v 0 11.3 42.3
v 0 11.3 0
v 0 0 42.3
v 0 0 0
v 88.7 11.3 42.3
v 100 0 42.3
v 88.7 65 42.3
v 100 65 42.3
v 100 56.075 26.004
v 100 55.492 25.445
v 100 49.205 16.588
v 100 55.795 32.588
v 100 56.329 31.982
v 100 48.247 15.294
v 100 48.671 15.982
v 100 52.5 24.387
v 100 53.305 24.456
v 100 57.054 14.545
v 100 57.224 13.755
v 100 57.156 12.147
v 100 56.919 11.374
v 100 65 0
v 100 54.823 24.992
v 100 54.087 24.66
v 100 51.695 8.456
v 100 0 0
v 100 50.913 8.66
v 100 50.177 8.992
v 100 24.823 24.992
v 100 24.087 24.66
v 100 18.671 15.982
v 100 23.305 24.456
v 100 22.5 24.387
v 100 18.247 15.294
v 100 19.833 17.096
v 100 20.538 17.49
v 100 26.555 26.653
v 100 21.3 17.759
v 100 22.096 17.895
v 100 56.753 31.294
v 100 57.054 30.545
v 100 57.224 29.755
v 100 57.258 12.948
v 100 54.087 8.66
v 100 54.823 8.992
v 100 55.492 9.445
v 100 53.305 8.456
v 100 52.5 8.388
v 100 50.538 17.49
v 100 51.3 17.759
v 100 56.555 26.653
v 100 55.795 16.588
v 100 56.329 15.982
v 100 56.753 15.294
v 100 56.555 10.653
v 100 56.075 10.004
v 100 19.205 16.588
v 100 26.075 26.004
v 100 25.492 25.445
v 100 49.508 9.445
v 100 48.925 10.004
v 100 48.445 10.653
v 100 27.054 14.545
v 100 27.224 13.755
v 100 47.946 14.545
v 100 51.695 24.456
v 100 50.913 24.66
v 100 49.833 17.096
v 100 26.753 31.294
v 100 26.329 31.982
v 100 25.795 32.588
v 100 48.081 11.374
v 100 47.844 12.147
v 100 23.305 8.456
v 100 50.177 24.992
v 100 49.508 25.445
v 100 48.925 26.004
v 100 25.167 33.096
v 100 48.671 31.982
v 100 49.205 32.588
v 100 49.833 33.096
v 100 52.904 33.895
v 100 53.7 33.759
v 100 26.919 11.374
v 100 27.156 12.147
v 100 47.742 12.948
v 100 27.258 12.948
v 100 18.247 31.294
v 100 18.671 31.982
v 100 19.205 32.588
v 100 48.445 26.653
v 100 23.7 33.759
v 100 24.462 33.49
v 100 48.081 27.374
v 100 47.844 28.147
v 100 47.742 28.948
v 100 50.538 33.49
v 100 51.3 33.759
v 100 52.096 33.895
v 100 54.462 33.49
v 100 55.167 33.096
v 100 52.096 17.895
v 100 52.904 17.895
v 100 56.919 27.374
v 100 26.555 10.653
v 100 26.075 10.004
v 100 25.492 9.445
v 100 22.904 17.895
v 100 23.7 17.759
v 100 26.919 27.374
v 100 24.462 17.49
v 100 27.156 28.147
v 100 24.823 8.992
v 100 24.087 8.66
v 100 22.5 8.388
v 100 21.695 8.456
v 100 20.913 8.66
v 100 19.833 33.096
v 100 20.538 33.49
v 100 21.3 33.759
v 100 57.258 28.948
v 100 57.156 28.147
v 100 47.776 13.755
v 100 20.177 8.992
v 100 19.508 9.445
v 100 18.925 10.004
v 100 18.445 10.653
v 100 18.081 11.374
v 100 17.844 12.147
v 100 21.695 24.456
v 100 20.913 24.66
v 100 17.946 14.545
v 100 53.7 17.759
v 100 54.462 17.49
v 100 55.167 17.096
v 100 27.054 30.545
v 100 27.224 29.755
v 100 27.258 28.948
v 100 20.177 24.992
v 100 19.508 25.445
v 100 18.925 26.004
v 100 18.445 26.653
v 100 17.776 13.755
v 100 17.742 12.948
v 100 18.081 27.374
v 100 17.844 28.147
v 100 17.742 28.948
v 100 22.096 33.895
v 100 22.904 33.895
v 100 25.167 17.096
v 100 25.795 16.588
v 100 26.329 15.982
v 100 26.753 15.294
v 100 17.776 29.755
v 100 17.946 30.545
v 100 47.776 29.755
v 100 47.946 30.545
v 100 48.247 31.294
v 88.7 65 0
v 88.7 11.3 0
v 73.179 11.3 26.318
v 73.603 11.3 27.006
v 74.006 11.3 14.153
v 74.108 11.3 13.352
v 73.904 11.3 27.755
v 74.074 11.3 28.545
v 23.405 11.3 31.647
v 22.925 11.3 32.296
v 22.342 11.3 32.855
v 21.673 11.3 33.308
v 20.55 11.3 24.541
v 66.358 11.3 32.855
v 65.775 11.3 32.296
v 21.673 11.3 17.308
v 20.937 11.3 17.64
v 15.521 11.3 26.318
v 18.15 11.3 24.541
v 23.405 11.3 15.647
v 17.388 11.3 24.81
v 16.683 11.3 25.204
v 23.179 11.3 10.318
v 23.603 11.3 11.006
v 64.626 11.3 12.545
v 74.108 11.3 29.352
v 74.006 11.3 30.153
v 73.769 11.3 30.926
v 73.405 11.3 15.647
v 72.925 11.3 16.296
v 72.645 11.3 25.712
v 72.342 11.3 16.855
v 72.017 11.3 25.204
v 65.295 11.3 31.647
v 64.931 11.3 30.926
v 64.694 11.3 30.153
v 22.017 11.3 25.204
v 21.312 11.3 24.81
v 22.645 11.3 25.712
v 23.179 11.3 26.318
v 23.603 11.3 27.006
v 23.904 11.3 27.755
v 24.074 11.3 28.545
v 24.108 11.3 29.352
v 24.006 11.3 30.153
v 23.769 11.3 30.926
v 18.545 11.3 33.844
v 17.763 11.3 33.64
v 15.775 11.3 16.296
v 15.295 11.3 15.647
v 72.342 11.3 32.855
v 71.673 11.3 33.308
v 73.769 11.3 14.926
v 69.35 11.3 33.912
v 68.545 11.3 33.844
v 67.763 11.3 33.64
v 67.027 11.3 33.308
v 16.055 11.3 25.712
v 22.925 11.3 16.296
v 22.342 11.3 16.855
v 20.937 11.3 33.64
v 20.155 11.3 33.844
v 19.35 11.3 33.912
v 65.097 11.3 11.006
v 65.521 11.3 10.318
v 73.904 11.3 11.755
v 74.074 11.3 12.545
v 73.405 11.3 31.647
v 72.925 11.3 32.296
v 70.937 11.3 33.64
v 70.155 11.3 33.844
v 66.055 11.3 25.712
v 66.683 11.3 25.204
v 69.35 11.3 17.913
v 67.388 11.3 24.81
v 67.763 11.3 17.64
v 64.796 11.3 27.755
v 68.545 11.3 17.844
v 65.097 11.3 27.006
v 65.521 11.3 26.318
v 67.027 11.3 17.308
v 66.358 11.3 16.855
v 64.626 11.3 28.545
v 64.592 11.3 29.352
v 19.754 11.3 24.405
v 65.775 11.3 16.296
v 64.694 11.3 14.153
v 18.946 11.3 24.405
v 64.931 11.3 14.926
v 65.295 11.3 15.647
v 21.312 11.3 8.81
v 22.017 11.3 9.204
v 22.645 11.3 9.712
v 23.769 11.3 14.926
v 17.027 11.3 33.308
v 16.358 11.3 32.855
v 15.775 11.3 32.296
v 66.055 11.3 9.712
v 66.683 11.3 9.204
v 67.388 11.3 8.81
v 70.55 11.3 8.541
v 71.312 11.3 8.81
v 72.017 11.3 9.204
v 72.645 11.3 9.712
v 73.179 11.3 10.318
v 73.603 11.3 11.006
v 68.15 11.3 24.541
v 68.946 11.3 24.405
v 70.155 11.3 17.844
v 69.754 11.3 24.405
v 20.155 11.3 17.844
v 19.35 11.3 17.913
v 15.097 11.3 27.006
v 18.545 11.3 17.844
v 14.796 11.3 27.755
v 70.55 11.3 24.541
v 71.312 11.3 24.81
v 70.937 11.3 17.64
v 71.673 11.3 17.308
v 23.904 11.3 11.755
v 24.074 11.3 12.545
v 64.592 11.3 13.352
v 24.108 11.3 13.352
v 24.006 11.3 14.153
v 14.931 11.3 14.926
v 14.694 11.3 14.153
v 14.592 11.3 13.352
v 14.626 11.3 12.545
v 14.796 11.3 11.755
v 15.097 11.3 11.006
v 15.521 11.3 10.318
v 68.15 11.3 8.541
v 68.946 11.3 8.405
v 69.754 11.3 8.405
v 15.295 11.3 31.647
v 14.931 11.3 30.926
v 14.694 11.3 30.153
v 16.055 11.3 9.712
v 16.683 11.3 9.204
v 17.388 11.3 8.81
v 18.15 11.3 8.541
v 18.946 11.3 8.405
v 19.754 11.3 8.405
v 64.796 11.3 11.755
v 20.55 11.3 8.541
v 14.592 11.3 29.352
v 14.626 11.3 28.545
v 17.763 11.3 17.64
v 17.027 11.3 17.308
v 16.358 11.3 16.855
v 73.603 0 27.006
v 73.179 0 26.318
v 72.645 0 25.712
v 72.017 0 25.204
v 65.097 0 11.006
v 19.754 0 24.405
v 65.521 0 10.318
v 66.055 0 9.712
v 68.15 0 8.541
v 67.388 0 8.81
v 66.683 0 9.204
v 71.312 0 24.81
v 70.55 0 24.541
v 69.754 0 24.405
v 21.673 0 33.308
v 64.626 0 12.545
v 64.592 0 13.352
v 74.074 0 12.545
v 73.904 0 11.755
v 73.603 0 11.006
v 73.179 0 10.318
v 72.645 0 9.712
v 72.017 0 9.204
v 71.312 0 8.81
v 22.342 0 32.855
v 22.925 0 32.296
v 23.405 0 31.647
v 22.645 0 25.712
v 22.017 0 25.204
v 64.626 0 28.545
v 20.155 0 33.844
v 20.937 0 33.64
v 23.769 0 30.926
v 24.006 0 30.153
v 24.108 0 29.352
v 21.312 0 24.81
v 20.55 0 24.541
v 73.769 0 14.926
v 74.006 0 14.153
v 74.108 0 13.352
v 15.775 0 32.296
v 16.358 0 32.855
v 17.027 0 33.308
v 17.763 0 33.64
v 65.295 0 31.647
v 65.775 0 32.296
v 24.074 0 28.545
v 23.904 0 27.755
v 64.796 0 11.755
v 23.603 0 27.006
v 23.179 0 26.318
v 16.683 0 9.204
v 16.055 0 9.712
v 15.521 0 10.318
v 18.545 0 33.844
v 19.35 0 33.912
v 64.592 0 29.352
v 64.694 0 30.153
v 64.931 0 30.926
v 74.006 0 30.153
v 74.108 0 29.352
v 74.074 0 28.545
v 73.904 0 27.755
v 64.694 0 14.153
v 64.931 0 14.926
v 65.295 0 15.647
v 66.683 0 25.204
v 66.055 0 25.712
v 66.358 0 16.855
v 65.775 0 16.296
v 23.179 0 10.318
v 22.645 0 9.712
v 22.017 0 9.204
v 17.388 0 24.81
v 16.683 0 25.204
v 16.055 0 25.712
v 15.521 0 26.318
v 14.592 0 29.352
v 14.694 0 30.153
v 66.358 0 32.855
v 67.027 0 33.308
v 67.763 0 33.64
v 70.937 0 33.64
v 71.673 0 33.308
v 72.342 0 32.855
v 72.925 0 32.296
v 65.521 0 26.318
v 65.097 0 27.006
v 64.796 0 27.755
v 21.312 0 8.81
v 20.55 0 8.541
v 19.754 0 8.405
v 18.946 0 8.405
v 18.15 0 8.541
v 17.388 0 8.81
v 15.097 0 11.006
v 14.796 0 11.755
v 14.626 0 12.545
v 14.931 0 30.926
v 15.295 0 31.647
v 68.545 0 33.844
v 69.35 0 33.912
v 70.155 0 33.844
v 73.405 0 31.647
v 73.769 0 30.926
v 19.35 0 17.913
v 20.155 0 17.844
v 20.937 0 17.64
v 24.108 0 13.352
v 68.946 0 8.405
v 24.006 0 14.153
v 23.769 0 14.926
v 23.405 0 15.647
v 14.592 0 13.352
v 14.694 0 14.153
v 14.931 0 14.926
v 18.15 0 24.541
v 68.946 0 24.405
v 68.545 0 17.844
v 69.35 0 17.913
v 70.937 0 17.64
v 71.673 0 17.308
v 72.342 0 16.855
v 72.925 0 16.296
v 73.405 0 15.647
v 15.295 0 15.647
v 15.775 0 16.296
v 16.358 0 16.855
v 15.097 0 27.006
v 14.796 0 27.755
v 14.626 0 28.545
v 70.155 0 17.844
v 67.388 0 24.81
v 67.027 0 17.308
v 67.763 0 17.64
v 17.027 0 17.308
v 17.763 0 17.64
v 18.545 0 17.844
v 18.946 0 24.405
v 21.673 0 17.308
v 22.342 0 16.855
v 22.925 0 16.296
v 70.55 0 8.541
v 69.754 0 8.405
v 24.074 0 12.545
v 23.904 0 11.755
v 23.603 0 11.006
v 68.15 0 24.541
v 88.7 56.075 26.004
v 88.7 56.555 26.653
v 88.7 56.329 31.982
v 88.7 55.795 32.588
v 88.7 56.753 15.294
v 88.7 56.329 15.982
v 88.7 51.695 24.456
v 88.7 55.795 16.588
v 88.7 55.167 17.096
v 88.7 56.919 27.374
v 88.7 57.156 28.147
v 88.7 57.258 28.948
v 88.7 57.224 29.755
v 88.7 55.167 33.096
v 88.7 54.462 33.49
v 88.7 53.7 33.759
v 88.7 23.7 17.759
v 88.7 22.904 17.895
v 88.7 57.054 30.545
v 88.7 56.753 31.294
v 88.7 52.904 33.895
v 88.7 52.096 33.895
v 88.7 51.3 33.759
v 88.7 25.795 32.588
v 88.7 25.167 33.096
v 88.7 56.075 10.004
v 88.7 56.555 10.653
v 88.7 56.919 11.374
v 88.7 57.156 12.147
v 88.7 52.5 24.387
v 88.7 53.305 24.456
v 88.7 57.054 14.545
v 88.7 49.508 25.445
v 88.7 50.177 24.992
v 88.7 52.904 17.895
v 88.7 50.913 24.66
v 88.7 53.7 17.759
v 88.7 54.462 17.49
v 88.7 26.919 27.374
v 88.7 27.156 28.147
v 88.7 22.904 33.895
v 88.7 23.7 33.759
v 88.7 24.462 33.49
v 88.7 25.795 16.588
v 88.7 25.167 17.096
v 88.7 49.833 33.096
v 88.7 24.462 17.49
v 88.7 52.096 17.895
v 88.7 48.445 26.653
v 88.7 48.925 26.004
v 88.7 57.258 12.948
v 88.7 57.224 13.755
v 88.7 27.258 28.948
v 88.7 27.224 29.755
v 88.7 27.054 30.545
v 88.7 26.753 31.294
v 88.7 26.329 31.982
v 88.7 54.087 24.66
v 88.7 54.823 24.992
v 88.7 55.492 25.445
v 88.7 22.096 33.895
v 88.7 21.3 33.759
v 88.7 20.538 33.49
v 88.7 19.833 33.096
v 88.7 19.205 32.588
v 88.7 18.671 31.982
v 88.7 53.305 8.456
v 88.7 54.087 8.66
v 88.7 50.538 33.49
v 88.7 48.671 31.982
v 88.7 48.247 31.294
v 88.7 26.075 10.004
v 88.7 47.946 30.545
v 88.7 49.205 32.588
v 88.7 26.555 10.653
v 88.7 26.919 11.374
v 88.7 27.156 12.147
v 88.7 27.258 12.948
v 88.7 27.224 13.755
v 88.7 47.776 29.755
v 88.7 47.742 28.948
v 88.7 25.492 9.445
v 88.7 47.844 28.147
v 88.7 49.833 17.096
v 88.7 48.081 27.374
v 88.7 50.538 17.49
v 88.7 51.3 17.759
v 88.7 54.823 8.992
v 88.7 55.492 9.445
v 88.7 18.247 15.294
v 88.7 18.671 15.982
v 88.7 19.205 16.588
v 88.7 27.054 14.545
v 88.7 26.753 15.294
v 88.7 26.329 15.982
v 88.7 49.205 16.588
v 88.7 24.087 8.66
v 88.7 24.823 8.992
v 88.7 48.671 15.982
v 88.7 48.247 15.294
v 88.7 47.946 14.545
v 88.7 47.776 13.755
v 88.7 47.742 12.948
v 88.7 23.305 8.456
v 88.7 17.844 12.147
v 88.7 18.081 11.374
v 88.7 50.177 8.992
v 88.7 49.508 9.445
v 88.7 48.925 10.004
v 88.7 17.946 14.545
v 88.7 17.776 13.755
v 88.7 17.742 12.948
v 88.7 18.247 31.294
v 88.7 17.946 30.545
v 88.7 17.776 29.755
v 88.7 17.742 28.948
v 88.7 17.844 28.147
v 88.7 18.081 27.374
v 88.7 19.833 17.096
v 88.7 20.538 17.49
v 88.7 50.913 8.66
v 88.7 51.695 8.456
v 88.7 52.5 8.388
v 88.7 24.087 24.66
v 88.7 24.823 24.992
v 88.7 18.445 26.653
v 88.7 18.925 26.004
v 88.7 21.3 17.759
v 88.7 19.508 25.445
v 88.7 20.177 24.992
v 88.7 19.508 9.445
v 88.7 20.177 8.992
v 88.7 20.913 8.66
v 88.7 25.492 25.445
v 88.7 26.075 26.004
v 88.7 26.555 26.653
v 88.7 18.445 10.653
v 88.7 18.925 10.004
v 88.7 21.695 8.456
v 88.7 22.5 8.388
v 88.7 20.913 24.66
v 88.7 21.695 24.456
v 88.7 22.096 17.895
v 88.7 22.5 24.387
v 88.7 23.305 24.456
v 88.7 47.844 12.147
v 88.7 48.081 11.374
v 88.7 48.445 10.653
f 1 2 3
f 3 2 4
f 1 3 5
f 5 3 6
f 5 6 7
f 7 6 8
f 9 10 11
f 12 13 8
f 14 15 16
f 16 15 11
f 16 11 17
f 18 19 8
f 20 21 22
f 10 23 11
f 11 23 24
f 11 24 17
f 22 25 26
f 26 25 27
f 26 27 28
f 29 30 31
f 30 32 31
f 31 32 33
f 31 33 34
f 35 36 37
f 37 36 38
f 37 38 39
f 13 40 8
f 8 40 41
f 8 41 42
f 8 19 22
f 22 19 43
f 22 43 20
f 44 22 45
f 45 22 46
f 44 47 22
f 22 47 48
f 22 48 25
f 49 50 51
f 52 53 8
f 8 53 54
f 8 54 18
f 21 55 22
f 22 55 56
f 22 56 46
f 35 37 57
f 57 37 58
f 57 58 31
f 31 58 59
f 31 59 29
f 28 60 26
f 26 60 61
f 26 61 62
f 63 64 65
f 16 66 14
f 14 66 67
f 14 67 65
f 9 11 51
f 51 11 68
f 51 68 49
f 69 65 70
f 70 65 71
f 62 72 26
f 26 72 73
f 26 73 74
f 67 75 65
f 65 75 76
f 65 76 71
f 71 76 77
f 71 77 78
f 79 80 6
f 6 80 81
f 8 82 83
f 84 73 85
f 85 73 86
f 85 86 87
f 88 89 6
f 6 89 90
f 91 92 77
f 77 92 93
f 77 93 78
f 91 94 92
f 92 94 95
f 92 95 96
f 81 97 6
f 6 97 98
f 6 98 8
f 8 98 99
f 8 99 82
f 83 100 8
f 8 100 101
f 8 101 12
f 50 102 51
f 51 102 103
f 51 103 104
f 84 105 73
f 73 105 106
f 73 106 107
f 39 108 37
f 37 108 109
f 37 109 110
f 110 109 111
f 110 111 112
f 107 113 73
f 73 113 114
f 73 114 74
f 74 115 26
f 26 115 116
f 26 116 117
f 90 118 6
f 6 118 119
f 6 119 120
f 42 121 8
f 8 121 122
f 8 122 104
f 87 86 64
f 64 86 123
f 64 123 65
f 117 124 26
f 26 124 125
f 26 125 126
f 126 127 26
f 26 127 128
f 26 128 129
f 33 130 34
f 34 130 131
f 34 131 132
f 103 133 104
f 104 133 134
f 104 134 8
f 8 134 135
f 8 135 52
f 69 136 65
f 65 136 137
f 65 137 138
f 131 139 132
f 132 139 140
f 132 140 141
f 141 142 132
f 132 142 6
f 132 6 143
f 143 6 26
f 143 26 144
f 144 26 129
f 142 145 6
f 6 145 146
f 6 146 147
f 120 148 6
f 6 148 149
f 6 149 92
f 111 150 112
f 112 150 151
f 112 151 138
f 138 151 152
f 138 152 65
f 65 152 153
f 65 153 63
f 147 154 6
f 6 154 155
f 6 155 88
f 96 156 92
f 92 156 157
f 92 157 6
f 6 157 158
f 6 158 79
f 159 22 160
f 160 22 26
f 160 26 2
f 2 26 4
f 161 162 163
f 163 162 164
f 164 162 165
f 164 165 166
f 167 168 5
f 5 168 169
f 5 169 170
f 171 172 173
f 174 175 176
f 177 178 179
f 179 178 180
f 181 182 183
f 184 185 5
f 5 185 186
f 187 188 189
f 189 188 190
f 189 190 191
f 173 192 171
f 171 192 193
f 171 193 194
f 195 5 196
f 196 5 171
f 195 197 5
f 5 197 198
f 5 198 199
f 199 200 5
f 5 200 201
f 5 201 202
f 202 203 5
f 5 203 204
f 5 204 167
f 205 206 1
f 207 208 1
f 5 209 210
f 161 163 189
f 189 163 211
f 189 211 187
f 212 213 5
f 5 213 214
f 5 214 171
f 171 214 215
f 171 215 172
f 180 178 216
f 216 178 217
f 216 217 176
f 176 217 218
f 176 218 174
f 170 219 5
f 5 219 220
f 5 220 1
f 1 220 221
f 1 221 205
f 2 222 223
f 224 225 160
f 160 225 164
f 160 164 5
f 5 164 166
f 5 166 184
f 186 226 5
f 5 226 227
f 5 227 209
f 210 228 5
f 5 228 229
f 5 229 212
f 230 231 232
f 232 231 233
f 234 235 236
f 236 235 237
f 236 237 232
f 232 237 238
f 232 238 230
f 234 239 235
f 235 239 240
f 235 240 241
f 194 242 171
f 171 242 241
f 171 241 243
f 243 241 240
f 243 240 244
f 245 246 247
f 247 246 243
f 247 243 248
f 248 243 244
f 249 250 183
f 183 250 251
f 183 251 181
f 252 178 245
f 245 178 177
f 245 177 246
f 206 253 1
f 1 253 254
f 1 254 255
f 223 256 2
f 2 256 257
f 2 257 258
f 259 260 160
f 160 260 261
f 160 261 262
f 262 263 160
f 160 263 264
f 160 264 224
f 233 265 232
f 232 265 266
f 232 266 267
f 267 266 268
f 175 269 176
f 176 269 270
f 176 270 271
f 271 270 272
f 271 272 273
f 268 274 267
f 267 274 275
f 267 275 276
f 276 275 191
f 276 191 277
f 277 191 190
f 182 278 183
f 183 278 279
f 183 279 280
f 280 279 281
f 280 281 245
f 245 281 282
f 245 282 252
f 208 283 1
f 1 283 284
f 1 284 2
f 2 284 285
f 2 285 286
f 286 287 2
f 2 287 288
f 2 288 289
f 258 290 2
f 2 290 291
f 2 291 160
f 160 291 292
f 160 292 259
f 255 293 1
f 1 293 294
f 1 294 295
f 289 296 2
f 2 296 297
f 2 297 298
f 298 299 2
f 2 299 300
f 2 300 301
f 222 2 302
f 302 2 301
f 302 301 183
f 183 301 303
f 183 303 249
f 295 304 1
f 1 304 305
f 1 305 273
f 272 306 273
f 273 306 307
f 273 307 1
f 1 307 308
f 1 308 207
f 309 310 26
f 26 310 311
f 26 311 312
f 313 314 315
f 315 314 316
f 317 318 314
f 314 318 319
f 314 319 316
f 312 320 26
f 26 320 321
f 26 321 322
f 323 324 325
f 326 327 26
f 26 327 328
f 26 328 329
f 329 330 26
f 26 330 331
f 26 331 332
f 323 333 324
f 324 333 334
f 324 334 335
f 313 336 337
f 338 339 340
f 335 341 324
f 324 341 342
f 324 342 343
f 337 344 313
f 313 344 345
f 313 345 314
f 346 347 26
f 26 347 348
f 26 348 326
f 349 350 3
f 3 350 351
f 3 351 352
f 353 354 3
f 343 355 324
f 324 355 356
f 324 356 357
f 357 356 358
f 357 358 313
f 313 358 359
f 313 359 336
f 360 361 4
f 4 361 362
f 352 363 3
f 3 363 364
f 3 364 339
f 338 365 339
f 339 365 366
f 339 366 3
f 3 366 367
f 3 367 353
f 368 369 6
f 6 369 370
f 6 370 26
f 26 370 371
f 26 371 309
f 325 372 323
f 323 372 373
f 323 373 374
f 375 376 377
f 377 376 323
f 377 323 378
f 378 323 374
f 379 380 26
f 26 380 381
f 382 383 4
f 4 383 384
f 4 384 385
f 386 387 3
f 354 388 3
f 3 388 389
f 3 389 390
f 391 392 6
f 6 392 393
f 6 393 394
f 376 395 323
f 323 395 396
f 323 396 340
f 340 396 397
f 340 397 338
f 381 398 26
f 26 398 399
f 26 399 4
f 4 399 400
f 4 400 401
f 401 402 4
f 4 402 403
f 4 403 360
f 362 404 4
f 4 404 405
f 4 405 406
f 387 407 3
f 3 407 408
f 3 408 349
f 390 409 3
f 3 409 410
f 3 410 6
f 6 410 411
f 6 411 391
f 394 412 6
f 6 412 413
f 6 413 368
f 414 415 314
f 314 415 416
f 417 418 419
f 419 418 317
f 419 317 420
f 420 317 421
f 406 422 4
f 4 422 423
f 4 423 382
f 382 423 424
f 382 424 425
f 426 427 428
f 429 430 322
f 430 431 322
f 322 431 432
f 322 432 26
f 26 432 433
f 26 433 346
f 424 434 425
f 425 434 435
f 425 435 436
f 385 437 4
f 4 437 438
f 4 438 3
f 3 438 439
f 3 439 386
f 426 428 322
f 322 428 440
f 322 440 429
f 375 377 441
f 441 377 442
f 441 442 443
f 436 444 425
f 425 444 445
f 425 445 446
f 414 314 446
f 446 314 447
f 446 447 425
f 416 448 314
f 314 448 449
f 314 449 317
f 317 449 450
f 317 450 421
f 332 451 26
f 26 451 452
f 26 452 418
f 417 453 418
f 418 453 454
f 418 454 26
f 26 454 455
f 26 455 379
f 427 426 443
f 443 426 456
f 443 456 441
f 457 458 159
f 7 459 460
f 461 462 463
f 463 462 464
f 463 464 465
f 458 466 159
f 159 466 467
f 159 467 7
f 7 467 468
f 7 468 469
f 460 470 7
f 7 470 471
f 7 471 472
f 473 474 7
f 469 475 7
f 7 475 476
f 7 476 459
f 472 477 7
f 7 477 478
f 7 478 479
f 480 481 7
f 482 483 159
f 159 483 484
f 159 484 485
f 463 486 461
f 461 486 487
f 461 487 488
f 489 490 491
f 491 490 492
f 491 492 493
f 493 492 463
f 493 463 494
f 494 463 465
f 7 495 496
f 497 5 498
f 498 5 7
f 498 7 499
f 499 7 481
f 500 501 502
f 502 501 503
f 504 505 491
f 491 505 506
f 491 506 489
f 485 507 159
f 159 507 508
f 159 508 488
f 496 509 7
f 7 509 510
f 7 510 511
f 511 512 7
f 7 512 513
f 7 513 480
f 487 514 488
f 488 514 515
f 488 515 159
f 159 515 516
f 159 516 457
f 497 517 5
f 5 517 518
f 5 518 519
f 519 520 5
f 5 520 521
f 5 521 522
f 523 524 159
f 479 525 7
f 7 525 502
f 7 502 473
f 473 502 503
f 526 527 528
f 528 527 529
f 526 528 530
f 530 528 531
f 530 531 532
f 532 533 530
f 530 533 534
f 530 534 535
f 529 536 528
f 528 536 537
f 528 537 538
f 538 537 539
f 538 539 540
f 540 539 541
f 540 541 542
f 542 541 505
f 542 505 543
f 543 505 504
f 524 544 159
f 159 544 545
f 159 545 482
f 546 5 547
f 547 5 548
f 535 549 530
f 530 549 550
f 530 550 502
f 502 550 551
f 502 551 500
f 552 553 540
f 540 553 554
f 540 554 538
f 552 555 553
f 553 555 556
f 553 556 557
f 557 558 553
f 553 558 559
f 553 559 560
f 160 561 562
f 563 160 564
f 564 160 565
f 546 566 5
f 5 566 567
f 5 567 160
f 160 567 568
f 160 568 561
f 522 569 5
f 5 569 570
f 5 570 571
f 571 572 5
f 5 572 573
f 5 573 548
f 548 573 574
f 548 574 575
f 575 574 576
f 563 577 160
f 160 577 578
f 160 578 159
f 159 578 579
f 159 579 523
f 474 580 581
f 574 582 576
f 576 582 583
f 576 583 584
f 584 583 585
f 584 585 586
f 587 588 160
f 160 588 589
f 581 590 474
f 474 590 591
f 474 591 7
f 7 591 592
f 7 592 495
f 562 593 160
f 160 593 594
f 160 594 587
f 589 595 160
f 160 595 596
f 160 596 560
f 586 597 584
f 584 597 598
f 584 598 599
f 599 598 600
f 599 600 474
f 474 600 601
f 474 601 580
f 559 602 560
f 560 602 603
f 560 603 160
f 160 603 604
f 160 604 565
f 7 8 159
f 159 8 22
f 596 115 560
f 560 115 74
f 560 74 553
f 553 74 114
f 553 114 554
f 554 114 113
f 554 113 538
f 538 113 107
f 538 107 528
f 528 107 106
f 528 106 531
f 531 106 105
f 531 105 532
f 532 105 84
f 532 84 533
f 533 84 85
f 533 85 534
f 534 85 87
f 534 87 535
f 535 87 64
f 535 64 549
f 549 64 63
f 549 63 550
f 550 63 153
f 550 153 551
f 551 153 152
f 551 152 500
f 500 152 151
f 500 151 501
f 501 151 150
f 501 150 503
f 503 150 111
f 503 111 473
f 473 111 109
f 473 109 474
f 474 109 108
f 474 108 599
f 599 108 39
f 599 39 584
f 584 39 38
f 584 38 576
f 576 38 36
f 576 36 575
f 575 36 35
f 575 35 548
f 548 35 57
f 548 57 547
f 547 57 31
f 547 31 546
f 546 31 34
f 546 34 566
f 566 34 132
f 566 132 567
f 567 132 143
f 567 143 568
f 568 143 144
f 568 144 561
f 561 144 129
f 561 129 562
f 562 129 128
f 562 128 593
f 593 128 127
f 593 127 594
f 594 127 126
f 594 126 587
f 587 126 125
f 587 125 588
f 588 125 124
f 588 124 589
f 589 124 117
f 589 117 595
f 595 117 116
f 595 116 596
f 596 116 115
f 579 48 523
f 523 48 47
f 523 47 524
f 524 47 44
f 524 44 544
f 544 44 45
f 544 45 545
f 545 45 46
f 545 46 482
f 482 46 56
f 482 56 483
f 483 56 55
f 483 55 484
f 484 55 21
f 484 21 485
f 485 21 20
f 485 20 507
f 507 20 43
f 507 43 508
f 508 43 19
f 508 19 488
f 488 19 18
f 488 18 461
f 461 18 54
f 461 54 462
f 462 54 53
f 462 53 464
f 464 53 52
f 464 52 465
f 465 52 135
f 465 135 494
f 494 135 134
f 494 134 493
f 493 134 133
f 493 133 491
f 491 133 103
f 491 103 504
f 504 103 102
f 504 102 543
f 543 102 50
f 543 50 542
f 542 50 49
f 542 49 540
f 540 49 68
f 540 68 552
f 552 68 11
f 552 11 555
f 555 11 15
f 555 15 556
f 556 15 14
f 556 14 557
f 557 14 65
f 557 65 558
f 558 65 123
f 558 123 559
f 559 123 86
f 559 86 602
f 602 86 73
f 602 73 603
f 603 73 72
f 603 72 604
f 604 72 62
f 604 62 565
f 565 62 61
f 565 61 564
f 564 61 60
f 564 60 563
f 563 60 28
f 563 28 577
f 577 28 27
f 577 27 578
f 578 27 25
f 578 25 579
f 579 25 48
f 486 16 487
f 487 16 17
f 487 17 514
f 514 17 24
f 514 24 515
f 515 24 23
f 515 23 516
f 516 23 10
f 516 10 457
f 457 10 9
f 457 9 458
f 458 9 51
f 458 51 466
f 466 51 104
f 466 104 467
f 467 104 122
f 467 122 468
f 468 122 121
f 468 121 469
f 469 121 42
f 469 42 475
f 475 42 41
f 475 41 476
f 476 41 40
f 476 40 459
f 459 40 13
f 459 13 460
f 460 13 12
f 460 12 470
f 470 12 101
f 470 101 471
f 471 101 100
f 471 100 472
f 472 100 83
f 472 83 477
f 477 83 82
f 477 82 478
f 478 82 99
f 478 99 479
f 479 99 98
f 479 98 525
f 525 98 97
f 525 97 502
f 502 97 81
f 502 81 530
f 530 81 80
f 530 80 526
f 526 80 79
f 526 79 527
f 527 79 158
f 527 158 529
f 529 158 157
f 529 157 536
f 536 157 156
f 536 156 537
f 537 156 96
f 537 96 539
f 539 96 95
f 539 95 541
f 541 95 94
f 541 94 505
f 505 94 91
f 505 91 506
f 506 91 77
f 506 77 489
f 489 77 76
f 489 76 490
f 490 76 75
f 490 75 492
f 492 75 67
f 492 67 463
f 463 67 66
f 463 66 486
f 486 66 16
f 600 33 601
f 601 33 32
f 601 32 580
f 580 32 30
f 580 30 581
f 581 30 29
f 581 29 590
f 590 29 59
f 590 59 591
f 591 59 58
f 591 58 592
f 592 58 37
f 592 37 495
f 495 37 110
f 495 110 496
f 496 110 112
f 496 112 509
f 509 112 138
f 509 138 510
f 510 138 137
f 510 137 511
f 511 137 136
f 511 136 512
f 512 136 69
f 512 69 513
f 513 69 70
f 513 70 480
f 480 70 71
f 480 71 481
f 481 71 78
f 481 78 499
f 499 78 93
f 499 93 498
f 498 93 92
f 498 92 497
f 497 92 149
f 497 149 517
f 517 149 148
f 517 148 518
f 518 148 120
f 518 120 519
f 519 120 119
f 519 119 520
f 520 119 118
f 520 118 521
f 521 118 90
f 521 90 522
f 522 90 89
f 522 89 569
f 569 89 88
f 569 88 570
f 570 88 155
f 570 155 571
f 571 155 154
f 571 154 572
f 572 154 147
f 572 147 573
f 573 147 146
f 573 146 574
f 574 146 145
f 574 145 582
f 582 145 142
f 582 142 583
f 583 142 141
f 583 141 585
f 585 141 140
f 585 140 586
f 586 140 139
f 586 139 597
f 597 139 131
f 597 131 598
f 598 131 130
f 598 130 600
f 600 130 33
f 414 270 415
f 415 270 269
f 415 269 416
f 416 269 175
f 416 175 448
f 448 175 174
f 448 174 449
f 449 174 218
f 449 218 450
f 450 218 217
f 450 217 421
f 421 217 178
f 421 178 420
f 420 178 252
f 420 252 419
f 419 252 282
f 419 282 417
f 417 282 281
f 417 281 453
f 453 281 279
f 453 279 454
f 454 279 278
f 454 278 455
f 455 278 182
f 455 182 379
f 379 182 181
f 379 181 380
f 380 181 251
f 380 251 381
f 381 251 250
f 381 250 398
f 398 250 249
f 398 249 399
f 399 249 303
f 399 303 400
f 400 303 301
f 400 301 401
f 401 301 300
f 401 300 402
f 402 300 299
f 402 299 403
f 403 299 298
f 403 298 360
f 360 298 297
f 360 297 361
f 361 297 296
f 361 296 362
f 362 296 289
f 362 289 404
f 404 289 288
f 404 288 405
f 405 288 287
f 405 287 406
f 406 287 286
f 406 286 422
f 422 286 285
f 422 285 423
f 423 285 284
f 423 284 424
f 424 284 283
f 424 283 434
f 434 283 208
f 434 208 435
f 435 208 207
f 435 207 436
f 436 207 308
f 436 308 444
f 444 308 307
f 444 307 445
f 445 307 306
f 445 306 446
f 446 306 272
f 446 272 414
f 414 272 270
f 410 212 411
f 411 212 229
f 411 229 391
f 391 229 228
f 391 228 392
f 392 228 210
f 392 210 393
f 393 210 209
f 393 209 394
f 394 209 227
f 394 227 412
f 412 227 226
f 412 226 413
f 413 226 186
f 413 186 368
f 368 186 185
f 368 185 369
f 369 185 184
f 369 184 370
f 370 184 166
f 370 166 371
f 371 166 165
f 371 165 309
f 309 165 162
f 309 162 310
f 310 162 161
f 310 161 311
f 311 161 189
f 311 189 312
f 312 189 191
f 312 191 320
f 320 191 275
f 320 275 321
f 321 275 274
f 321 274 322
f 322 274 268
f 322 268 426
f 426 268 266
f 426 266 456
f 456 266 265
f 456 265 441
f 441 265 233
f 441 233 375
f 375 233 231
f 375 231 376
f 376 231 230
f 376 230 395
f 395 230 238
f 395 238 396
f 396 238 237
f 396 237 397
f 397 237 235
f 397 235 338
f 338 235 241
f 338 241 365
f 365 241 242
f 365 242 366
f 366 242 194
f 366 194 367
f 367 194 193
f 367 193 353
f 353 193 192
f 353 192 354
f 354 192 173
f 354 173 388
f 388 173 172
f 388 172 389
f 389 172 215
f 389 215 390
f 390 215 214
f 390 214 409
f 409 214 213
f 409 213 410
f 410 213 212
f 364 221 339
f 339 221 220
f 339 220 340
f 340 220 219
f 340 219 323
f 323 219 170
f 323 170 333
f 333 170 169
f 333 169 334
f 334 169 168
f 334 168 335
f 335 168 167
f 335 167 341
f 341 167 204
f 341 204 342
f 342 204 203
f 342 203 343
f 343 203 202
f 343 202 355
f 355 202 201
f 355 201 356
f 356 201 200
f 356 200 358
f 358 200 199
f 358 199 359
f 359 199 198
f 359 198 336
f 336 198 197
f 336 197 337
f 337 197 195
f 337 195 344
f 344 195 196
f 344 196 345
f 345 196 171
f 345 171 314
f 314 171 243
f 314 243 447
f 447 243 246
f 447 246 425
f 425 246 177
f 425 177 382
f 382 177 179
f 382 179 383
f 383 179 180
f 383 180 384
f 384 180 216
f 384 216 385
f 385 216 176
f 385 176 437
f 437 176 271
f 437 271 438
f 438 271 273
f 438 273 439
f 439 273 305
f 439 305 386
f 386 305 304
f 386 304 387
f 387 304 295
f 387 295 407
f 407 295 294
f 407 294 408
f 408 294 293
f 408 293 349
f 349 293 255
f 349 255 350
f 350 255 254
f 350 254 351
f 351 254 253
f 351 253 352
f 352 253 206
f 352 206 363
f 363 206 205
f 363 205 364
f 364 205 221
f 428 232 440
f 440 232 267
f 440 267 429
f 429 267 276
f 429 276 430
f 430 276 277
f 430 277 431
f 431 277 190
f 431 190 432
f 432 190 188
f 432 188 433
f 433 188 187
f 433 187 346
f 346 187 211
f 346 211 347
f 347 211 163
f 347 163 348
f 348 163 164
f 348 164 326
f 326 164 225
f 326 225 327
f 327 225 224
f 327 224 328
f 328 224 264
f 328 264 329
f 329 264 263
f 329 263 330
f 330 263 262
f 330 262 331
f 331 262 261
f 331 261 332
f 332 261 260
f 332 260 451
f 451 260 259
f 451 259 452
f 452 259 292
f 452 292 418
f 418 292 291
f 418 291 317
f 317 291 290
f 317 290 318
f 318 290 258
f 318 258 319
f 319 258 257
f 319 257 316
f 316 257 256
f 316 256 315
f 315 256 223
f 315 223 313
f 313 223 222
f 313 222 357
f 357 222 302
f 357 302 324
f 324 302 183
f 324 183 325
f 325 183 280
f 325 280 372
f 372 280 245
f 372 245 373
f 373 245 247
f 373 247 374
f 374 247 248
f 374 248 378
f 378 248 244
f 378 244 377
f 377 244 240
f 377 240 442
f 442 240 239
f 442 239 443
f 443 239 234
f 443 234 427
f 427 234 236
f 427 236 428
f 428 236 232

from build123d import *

# Parameters (mm, degrees)
SKETCH1_W           = 100
SKETCH1_H           = 42.3
BOSS_EXTRUDE1_DEPTH = 11.3
SKETCH2_W           = 11.3
SKETCH2_H           = 42.3
BOSS_EXTRUDE2_DEPTH = 53.7
SKETCH3_R           = 4.7625
CUT_EXTRUDE1_DEPTH  = 53.7
SKETCH4_R           = 4.7625
CUT_EXTRUDE2_DEPTH  = 53.7


with BuildPart() as part:
    # Sketch1 → Boss-Extrude1 (new body)
    with BuildSketch(Plane(origin=(0, 0, 0), x_dir=(1, 0, 0), z_dir=(0, 1, 0))):
        with Locations((50, -21.15)):
            Rectangle(SKETCH1_W, SKETCH1_H)
    extrude(amount=BOSS_EXTRUDE1_DEPTH)

    # Sketch2 → Boss-Extrude2 (add)
    with BuildSketch(Plane(origin=(0, 11.3, 0), x_dir=(1, 0, 0), z_dir=(0, 1, 0))):
        with Locations((94.35, -21.15)):
            Rectangle(SKETCH2_W, SKETCH2_H)
    extrude(amount=BOSS_EXTRUDE2_DEPTH)

    # Sketch3 → Cut-Extrude1 (cut)
    with BuildSketch(Plane(origin=(100, 0, 0), x_dir=(0, 0, -1), z_dir=(1, 0, 0))):
        with Locations((-13.15, 22.5)):
            Circle(SKETCH3_R)
        with Locations((-13.15, 52.5)):
            Circle(SKETCH3_R)
        with Locations((-29.15, 52.5)):
            Circle(SKETCH3_R)
        with Locations((-29.15, 22.5)):
            Circle(SKETCH3_R)
    extrude(amount=-CUT_EXTRUDE1_DEPTH, mode=Mode.SUBTRACT)

    # Sketch4 → Cut-Extrude2 (cut)
    with BuildSketch(Plane(origin=(0, 11.3, 0), x_dir=(1, 0, 0), z_dir=(0, 1, 0))):
        with Locations(Location((19.35, -13.15, 0), (0, 0, 270))):
            Circle(SKETCH4_R)
        with Locations(Location((69.35, -13.15, 0), (0, 0, 270))):
            Circle(SKETCH4_R)
        with Locations(Location((19.35, -29.15, 0), (0, 0, 270))):
            Circle(SKETCH4_R)
        with Locations(Location((69.35, -29.15, 0), (0, 0, 270))):
            Circle(SKETCH4_R)
    extrude(amount=-CUT_EXTRUDE2_DEPTH, mode=Mode.SUBTRACT)


solid = part.part
